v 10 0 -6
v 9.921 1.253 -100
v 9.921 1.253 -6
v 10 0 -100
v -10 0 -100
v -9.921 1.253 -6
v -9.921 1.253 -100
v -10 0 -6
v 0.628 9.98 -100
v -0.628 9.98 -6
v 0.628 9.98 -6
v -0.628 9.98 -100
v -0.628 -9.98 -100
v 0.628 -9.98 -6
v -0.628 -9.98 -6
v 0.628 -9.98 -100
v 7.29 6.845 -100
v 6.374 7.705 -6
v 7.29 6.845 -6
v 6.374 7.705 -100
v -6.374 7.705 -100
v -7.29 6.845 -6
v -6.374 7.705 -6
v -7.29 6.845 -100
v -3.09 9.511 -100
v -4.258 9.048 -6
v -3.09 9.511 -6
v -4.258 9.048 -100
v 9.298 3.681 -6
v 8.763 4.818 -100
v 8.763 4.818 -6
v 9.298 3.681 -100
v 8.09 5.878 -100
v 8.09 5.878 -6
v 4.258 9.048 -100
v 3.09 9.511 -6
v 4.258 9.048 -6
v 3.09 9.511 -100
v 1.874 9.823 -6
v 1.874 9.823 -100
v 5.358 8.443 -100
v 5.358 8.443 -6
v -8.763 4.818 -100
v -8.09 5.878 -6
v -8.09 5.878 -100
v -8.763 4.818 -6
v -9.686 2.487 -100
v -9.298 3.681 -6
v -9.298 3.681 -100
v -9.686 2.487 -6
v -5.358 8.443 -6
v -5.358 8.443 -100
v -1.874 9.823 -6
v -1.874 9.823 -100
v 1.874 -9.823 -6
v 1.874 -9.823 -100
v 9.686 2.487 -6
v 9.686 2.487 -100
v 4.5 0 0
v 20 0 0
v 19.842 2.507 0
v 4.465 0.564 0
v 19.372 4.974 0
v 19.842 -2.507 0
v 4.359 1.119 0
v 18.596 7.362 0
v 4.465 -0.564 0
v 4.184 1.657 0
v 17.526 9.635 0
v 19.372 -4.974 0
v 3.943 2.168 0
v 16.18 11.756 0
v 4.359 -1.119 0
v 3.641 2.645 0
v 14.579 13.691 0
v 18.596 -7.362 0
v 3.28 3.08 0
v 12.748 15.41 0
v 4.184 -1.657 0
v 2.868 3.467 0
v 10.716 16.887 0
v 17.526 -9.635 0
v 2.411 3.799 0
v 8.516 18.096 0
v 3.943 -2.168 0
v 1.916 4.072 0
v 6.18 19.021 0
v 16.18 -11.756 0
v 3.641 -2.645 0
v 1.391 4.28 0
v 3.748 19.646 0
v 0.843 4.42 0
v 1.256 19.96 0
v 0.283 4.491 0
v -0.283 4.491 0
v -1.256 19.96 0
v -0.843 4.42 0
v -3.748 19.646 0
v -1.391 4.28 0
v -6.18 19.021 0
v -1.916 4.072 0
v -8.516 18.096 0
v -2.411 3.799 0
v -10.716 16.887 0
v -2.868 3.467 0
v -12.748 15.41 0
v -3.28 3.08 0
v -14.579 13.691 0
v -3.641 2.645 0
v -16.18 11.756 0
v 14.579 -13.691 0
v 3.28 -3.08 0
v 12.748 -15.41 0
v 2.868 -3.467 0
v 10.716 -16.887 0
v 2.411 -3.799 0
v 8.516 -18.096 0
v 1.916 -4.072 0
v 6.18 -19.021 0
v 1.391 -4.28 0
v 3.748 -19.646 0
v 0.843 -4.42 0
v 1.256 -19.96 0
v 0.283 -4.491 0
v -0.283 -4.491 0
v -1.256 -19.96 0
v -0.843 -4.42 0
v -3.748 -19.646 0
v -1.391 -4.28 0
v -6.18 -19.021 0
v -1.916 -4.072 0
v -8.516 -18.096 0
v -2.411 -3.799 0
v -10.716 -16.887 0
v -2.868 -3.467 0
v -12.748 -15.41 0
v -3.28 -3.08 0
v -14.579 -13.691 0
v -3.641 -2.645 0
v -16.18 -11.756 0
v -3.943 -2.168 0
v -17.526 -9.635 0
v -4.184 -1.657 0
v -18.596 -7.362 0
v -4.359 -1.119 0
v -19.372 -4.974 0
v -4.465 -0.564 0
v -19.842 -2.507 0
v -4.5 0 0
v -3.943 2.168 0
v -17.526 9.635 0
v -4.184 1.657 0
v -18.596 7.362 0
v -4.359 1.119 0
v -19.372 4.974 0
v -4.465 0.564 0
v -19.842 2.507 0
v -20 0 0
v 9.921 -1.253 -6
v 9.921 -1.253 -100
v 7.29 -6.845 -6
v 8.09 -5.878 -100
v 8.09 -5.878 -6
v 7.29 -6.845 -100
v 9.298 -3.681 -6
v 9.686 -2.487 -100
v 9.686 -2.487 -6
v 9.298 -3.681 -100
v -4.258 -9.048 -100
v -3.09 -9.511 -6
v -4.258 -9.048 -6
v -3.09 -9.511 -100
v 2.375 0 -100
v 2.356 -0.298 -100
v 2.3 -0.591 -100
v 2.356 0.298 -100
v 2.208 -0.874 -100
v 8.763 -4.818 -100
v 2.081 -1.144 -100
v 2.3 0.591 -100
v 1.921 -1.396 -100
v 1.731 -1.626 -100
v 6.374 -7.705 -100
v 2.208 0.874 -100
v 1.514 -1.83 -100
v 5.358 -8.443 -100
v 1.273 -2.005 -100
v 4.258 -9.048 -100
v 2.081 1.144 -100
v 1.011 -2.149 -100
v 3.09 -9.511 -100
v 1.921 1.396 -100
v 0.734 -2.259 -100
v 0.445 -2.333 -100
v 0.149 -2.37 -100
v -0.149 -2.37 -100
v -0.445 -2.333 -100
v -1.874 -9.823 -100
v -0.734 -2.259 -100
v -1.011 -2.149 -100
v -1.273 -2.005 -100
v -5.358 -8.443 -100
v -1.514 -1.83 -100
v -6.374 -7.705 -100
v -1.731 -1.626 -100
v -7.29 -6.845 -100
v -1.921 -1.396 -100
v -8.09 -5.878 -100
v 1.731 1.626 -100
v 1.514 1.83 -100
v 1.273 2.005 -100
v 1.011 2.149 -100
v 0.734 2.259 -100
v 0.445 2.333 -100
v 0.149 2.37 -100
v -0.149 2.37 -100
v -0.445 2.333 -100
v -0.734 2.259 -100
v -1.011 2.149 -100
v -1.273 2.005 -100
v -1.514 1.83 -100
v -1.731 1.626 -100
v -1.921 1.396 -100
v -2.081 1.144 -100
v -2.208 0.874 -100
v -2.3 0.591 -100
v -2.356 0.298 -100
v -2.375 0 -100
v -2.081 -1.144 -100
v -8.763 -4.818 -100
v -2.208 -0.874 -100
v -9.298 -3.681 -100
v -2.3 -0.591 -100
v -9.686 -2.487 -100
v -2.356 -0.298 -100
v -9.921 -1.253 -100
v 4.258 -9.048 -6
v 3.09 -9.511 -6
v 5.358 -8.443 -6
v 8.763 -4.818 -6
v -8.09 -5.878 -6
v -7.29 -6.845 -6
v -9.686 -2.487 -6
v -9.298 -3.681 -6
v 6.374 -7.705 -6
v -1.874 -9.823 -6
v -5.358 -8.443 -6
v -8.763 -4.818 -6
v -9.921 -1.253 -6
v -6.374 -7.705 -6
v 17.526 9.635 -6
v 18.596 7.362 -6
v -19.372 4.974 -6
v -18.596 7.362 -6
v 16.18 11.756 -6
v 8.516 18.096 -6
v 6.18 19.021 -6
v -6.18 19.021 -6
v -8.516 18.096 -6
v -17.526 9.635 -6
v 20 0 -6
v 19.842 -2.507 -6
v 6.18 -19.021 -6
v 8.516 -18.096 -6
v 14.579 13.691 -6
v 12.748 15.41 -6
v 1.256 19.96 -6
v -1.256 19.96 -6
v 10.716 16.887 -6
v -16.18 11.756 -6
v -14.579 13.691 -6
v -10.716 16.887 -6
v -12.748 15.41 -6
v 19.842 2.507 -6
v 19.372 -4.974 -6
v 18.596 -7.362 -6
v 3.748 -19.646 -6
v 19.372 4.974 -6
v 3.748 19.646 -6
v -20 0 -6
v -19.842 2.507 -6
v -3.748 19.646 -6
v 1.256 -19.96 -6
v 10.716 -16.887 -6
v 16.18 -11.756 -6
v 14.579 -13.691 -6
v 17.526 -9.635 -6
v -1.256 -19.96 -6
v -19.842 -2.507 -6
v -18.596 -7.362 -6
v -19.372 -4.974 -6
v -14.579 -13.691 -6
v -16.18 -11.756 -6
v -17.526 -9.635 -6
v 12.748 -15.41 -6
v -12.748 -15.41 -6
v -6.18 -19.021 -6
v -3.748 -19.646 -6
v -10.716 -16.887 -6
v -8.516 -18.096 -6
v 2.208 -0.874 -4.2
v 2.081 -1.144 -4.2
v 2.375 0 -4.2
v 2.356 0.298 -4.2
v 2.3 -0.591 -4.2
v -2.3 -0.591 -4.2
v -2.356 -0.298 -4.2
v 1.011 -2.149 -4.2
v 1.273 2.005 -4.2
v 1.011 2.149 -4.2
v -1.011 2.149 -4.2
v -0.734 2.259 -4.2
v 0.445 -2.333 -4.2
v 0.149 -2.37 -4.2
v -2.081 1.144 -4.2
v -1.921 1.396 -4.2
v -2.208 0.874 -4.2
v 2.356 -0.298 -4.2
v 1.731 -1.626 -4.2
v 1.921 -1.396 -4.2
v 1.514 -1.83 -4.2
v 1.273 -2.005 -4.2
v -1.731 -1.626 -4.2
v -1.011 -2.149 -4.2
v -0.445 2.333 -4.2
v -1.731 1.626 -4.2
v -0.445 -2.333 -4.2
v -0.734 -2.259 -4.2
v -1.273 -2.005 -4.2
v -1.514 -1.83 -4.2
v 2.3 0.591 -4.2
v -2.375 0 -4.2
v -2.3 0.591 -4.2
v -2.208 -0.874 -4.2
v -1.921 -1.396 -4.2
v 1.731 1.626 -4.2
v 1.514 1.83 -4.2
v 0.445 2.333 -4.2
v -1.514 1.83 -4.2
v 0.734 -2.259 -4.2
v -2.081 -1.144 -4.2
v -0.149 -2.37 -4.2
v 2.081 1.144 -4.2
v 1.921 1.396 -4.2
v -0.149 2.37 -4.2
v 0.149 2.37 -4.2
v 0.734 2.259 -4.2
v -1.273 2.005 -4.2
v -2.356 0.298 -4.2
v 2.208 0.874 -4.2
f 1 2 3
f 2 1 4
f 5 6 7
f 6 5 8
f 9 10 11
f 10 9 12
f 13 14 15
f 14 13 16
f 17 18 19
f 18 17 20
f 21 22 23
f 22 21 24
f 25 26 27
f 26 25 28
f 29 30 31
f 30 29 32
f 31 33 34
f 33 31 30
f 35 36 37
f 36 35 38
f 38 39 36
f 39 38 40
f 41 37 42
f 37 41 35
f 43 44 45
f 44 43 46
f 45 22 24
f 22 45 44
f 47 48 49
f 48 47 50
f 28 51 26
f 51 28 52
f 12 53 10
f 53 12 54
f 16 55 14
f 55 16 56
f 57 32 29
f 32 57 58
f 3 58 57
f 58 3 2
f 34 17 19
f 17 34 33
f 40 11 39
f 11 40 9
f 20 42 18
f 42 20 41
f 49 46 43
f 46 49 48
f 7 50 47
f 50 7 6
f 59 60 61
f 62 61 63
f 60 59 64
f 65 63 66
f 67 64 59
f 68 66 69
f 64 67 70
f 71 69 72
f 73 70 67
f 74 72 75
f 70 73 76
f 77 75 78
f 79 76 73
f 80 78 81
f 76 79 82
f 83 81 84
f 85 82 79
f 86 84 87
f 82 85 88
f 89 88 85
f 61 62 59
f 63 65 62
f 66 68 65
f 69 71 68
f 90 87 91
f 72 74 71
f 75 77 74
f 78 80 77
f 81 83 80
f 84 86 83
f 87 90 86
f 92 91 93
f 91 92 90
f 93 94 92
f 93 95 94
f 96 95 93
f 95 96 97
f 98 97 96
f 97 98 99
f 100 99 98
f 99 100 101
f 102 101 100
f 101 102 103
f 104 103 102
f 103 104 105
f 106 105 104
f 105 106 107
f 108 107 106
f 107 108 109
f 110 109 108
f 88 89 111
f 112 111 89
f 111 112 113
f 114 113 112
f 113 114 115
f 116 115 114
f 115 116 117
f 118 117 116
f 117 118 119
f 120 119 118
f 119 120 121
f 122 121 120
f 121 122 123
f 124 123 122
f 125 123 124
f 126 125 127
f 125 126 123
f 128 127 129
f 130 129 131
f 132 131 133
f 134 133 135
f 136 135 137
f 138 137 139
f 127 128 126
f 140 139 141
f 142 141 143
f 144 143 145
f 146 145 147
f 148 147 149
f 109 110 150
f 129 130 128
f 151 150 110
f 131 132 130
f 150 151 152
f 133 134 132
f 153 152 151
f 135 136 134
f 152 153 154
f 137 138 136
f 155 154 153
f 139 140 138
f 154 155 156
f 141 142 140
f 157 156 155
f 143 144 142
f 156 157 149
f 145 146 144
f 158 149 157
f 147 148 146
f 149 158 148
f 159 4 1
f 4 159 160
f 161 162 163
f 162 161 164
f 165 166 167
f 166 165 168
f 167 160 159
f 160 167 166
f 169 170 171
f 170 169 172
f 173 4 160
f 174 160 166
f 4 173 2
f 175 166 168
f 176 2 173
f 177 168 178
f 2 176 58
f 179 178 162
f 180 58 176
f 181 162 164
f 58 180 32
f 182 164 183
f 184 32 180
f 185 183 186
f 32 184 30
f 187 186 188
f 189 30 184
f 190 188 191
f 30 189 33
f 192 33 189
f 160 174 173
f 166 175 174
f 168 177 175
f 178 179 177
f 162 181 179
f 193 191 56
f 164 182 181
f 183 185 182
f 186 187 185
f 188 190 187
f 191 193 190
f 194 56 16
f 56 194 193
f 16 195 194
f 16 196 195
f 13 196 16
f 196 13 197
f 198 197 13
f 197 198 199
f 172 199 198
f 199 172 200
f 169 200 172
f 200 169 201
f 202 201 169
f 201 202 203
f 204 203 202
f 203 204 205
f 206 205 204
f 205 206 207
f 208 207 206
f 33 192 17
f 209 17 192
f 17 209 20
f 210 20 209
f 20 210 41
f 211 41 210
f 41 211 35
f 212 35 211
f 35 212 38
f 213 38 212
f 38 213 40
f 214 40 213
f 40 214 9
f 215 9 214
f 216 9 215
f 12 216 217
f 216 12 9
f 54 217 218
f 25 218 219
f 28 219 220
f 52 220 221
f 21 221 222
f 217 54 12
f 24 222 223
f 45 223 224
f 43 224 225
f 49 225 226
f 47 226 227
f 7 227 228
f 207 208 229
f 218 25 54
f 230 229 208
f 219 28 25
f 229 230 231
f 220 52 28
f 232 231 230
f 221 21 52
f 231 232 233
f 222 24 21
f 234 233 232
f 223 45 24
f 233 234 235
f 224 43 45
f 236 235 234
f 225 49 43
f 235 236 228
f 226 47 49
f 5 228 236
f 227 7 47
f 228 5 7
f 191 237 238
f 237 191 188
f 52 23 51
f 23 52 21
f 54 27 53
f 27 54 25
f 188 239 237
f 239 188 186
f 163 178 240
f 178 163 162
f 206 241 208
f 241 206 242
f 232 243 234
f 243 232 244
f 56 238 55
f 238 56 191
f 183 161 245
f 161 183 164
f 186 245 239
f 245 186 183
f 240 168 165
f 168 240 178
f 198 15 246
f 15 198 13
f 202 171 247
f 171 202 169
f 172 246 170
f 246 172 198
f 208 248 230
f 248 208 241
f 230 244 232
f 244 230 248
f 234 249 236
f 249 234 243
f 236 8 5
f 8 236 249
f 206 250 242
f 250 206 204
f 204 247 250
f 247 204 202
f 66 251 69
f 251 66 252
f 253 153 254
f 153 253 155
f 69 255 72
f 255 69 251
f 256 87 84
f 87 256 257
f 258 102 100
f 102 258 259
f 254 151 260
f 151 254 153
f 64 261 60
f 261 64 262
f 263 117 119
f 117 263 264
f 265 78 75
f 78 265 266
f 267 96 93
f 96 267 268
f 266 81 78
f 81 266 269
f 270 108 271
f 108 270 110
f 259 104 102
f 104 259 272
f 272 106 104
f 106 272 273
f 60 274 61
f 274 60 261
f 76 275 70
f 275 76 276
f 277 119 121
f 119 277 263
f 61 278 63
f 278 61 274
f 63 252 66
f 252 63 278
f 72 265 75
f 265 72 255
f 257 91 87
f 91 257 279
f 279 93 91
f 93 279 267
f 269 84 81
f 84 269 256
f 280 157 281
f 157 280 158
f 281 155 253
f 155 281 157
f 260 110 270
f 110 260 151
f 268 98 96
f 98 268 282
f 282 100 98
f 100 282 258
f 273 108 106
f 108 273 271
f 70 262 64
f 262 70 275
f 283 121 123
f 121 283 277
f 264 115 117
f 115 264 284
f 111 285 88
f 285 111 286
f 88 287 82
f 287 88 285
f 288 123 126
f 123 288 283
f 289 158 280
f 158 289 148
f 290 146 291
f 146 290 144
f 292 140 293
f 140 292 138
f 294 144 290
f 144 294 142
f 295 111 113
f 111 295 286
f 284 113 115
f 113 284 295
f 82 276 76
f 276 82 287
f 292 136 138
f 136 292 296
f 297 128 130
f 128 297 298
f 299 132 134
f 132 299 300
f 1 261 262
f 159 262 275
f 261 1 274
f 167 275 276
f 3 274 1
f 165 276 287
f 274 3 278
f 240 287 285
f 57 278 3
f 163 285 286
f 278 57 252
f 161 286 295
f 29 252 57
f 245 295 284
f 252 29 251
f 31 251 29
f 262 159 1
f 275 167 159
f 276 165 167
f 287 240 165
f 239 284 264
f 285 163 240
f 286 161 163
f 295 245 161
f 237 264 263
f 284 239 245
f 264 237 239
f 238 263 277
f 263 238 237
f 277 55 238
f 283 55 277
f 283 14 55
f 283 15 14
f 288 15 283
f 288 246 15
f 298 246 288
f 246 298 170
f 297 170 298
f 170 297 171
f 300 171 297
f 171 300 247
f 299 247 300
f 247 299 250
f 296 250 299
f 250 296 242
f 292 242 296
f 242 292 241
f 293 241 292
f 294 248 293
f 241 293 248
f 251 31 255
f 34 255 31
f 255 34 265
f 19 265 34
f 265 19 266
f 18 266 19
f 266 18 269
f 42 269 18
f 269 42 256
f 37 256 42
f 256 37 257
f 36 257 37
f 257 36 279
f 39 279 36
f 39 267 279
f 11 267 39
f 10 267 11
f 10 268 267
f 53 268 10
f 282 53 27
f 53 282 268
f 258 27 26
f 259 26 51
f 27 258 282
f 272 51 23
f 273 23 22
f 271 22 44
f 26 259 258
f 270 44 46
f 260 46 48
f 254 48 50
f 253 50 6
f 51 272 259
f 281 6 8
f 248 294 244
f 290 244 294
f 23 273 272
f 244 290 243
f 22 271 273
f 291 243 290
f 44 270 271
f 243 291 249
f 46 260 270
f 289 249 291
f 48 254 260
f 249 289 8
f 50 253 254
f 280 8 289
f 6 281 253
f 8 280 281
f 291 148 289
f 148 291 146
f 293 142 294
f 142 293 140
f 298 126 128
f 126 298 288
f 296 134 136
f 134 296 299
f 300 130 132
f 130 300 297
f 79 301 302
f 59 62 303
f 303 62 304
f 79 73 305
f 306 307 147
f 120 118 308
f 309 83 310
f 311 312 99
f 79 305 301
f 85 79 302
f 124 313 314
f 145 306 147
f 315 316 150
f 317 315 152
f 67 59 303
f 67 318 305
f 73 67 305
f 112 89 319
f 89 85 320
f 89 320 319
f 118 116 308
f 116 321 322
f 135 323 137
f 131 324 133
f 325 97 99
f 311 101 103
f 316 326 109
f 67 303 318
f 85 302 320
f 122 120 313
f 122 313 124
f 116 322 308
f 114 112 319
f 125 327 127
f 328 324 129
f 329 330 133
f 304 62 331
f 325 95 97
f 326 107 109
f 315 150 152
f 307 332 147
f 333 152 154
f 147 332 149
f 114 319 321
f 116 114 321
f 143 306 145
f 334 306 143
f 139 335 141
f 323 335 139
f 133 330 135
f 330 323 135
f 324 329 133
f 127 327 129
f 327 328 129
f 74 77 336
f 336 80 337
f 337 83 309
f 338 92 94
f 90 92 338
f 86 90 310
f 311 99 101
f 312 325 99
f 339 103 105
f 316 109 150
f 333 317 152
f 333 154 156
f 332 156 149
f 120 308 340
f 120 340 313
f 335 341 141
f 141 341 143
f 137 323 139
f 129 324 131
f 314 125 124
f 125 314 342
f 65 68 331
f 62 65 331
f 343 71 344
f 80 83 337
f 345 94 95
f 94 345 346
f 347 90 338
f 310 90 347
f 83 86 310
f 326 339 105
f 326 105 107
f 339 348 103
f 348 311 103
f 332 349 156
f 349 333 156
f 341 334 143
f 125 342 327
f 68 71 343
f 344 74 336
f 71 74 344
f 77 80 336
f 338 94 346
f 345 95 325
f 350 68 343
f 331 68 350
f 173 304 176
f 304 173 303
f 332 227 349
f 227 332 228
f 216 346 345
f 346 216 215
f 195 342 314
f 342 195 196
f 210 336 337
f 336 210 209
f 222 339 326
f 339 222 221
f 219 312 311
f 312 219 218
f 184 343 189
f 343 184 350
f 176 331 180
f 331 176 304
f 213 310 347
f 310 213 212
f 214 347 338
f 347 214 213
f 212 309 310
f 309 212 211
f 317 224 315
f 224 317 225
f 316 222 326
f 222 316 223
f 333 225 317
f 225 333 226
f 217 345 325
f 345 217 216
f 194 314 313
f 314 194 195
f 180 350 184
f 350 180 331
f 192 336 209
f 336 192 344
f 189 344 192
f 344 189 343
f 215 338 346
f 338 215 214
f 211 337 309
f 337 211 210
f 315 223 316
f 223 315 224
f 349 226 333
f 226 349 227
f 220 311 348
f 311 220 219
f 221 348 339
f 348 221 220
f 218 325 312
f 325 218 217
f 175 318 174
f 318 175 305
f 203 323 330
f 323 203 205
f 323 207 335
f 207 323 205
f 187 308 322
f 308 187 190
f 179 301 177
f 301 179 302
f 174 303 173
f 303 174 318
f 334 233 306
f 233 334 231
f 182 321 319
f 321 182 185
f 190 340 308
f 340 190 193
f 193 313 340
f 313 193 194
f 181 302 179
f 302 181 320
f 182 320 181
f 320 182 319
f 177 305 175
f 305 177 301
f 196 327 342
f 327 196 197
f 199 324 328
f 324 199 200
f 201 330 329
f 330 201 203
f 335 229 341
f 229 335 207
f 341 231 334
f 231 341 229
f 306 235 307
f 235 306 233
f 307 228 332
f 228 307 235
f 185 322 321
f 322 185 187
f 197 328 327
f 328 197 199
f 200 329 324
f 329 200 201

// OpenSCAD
$fn = 50;


difference() {
	union() {
		translate(v = [0, 0, -100.0000000000]) {
			cylinder(h = 100, r = 10.0000000000);
		}
		translate(v = [0, 0, -6.0000000000]) {
			cylinder(h = 6, r = 20.0000000000);
		}
	}
	union() {
		translate(v = [0, 0, 0]) {
			rotate(a = [0, 0, 0]) {
				difference() {
					union() {
						#translate(v = [0, 0, -100.0000000000]) {
							cylinder(h = 100, r = 2.2500000000);
						}
						#translate(v = [0, 0, -4.2000000000]) {
							cylinder(h = 4.2000000000, r = 10.0000000000, r1 = 2.3750000000, r2 = 4.5000000000);
						}
						#translate(v = [0, 0, -100.0000000000]) {
							cylinder(h = 100, r = 2.3750000000);
						}
						#translate(v = [0, 0, -100.0000000000]) {
							cylinder(h = 100, r = 2.2500000000);
						}
					}
					union();
				}
			}
		}
	}
}
